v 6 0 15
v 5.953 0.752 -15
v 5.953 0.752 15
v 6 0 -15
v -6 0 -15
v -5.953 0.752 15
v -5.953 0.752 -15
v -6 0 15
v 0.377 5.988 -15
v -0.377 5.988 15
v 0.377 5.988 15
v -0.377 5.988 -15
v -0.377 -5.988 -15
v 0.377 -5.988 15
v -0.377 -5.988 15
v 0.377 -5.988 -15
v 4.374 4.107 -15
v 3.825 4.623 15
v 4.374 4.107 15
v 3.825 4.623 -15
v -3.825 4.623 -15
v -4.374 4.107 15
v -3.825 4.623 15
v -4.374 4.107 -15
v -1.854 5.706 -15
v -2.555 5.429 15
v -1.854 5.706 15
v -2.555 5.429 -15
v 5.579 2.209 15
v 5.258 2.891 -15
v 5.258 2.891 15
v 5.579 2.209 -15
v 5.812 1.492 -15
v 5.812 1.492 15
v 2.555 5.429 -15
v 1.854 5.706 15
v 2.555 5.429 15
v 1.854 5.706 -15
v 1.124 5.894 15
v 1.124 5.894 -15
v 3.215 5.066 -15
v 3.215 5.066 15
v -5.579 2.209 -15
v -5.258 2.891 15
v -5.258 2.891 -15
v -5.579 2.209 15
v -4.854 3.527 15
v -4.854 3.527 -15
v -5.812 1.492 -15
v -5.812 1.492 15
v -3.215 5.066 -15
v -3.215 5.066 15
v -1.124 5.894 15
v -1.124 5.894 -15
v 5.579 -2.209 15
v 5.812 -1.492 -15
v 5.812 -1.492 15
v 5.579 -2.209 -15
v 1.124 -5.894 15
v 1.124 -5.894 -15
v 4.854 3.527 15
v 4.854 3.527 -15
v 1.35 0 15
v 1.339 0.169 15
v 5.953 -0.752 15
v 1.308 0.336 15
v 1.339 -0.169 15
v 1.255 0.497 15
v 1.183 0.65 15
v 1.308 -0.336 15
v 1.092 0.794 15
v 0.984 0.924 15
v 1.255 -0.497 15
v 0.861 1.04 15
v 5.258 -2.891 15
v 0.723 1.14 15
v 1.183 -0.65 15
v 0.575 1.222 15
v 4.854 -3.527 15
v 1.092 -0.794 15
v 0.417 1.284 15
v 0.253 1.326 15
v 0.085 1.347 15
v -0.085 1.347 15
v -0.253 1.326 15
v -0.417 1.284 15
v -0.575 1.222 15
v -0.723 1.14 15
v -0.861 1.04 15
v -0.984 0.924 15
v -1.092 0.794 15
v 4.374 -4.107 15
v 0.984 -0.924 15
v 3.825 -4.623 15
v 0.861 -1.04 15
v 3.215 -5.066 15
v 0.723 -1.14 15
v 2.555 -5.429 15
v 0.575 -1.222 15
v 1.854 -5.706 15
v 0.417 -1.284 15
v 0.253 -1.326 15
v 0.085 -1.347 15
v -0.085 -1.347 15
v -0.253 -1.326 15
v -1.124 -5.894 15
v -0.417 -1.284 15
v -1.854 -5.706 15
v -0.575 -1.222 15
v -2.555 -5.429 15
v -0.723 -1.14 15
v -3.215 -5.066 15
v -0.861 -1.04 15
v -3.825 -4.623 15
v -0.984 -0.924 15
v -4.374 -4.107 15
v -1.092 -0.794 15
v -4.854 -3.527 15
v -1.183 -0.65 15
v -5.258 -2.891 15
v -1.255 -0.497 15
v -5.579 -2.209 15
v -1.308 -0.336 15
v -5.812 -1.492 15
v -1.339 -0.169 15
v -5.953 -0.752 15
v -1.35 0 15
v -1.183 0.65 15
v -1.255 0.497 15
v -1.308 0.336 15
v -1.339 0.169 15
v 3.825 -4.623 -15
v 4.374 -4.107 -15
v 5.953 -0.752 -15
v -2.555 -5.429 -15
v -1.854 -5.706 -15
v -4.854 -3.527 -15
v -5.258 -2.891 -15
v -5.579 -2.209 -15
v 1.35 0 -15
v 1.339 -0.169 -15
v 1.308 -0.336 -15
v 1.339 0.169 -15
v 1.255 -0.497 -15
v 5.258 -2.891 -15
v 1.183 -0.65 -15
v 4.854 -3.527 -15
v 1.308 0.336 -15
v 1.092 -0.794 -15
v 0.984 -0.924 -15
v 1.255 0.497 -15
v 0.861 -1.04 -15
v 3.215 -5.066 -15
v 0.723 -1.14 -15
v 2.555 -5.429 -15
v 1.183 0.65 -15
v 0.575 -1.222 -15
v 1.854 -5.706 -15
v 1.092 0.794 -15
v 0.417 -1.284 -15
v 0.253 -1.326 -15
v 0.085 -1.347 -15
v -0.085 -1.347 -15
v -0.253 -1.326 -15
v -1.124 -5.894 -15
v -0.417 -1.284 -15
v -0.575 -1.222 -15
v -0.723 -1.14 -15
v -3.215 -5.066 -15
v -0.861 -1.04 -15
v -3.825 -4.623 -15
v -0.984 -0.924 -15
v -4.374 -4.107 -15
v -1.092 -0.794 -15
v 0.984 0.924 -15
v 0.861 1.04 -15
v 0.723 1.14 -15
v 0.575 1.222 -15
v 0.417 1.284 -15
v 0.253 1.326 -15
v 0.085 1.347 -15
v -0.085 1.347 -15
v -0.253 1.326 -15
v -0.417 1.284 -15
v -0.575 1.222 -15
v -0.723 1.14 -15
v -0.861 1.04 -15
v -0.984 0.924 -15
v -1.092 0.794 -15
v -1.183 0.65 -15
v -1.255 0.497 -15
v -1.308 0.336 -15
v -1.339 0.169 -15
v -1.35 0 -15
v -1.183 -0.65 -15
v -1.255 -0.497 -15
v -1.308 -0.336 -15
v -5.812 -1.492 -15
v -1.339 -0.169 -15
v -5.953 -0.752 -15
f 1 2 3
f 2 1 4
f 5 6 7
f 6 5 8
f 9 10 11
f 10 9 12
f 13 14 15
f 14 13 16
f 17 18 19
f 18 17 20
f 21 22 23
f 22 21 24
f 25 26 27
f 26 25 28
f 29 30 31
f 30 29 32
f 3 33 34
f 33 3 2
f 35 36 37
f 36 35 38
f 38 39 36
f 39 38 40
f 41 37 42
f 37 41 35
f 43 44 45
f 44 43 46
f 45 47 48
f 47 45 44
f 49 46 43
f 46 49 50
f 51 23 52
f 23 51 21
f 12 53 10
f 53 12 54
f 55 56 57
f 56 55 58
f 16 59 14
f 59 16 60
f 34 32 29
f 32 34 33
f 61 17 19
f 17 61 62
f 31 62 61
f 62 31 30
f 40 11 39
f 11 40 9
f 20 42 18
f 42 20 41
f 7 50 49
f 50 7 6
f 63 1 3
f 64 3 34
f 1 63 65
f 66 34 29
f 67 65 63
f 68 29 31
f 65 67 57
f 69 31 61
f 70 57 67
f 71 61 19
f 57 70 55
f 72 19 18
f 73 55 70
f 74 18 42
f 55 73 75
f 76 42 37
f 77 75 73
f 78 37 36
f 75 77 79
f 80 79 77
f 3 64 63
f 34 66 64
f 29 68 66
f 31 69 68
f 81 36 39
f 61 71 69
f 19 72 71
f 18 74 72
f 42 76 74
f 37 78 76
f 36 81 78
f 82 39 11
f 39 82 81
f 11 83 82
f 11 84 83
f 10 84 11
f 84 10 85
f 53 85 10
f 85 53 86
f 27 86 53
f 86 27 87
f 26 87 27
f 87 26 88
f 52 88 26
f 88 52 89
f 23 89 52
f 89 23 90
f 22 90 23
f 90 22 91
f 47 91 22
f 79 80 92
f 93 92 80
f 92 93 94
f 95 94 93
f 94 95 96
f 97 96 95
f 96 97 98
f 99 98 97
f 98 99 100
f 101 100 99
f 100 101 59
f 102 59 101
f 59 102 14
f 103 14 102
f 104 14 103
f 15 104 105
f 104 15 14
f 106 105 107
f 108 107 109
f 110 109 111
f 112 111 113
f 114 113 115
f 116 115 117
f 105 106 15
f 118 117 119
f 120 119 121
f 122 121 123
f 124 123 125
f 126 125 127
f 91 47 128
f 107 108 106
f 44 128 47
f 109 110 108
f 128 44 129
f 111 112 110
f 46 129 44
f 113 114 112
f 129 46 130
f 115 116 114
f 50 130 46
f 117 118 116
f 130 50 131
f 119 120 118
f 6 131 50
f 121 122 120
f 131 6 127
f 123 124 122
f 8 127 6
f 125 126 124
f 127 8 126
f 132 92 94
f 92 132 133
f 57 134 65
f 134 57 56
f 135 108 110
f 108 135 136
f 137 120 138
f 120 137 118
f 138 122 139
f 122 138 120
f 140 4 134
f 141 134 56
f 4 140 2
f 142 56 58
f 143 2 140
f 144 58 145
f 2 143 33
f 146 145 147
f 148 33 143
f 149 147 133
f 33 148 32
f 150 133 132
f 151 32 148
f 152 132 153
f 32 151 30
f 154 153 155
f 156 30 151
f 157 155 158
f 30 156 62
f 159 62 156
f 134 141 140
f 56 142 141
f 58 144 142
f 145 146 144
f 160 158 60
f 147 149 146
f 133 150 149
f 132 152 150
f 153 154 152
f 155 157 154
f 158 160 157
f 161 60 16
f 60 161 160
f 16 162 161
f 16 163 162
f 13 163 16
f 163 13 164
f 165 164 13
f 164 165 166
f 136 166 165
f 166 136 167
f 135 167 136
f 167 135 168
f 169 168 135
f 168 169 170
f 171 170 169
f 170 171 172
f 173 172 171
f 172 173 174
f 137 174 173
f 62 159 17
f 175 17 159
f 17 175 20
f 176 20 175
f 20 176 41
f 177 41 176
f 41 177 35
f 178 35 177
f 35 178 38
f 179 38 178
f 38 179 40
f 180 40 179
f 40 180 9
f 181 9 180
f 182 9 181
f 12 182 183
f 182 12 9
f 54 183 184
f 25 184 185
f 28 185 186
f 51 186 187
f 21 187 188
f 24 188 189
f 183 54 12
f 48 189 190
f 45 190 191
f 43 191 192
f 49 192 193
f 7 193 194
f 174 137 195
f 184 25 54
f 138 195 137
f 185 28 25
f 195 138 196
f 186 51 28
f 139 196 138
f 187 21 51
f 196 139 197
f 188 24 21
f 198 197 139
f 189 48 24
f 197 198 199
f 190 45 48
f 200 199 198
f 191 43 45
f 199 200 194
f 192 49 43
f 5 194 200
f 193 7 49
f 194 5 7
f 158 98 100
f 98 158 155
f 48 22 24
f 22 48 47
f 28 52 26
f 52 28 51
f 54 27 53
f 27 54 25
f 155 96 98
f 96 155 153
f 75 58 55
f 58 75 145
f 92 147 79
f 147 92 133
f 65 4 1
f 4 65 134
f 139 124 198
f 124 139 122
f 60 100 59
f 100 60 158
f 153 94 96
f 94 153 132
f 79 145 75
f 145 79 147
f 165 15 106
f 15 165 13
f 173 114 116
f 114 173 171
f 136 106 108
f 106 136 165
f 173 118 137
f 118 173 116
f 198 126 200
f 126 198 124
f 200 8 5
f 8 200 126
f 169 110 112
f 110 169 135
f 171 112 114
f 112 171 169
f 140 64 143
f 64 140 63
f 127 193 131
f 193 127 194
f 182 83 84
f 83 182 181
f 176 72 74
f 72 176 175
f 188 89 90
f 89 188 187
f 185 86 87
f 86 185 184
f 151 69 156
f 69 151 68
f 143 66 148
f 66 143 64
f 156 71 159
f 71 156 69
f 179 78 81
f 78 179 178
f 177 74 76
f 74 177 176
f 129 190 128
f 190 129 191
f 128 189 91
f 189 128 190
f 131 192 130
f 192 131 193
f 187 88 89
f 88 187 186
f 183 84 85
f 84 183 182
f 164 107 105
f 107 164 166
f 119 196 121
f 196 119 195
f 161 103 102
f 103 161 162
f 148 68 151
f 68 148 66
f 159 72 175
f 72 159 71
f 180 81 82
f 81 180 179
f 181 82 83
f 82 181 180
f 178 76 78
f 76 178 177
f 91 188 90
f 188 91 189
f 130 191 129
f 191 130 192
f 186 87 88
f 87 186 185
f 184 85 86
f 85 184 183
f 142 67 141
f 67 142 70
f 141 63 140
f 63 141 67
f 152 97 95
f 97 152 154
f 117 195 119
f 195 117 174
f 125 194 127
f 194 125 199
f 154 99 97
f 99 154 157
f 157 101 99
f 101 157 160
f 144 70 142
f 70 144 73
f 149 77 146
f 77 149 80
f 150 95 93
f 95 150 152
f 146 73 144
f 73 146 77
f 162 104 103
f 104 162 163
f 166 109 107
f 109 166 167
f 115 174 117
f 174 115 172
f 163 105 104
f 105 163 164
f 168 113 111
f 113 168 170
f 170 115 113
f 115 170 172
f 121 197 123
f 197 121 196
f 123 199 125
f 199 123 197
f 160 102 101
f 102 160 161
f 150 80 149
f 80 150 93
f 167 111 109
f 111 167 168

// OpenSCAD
$fn = 50;


difference() {
	union() {
		translate(v = [0, 0, -15.0000000000]) {
			cylinder(h = 30, r = 6.0000000000);
		}
	}
	union() {
		translate(v = [0, 0, -100.0000000000]) {
			cylinder(h = 200, r = 1.3500000000);
		}
	}
}
